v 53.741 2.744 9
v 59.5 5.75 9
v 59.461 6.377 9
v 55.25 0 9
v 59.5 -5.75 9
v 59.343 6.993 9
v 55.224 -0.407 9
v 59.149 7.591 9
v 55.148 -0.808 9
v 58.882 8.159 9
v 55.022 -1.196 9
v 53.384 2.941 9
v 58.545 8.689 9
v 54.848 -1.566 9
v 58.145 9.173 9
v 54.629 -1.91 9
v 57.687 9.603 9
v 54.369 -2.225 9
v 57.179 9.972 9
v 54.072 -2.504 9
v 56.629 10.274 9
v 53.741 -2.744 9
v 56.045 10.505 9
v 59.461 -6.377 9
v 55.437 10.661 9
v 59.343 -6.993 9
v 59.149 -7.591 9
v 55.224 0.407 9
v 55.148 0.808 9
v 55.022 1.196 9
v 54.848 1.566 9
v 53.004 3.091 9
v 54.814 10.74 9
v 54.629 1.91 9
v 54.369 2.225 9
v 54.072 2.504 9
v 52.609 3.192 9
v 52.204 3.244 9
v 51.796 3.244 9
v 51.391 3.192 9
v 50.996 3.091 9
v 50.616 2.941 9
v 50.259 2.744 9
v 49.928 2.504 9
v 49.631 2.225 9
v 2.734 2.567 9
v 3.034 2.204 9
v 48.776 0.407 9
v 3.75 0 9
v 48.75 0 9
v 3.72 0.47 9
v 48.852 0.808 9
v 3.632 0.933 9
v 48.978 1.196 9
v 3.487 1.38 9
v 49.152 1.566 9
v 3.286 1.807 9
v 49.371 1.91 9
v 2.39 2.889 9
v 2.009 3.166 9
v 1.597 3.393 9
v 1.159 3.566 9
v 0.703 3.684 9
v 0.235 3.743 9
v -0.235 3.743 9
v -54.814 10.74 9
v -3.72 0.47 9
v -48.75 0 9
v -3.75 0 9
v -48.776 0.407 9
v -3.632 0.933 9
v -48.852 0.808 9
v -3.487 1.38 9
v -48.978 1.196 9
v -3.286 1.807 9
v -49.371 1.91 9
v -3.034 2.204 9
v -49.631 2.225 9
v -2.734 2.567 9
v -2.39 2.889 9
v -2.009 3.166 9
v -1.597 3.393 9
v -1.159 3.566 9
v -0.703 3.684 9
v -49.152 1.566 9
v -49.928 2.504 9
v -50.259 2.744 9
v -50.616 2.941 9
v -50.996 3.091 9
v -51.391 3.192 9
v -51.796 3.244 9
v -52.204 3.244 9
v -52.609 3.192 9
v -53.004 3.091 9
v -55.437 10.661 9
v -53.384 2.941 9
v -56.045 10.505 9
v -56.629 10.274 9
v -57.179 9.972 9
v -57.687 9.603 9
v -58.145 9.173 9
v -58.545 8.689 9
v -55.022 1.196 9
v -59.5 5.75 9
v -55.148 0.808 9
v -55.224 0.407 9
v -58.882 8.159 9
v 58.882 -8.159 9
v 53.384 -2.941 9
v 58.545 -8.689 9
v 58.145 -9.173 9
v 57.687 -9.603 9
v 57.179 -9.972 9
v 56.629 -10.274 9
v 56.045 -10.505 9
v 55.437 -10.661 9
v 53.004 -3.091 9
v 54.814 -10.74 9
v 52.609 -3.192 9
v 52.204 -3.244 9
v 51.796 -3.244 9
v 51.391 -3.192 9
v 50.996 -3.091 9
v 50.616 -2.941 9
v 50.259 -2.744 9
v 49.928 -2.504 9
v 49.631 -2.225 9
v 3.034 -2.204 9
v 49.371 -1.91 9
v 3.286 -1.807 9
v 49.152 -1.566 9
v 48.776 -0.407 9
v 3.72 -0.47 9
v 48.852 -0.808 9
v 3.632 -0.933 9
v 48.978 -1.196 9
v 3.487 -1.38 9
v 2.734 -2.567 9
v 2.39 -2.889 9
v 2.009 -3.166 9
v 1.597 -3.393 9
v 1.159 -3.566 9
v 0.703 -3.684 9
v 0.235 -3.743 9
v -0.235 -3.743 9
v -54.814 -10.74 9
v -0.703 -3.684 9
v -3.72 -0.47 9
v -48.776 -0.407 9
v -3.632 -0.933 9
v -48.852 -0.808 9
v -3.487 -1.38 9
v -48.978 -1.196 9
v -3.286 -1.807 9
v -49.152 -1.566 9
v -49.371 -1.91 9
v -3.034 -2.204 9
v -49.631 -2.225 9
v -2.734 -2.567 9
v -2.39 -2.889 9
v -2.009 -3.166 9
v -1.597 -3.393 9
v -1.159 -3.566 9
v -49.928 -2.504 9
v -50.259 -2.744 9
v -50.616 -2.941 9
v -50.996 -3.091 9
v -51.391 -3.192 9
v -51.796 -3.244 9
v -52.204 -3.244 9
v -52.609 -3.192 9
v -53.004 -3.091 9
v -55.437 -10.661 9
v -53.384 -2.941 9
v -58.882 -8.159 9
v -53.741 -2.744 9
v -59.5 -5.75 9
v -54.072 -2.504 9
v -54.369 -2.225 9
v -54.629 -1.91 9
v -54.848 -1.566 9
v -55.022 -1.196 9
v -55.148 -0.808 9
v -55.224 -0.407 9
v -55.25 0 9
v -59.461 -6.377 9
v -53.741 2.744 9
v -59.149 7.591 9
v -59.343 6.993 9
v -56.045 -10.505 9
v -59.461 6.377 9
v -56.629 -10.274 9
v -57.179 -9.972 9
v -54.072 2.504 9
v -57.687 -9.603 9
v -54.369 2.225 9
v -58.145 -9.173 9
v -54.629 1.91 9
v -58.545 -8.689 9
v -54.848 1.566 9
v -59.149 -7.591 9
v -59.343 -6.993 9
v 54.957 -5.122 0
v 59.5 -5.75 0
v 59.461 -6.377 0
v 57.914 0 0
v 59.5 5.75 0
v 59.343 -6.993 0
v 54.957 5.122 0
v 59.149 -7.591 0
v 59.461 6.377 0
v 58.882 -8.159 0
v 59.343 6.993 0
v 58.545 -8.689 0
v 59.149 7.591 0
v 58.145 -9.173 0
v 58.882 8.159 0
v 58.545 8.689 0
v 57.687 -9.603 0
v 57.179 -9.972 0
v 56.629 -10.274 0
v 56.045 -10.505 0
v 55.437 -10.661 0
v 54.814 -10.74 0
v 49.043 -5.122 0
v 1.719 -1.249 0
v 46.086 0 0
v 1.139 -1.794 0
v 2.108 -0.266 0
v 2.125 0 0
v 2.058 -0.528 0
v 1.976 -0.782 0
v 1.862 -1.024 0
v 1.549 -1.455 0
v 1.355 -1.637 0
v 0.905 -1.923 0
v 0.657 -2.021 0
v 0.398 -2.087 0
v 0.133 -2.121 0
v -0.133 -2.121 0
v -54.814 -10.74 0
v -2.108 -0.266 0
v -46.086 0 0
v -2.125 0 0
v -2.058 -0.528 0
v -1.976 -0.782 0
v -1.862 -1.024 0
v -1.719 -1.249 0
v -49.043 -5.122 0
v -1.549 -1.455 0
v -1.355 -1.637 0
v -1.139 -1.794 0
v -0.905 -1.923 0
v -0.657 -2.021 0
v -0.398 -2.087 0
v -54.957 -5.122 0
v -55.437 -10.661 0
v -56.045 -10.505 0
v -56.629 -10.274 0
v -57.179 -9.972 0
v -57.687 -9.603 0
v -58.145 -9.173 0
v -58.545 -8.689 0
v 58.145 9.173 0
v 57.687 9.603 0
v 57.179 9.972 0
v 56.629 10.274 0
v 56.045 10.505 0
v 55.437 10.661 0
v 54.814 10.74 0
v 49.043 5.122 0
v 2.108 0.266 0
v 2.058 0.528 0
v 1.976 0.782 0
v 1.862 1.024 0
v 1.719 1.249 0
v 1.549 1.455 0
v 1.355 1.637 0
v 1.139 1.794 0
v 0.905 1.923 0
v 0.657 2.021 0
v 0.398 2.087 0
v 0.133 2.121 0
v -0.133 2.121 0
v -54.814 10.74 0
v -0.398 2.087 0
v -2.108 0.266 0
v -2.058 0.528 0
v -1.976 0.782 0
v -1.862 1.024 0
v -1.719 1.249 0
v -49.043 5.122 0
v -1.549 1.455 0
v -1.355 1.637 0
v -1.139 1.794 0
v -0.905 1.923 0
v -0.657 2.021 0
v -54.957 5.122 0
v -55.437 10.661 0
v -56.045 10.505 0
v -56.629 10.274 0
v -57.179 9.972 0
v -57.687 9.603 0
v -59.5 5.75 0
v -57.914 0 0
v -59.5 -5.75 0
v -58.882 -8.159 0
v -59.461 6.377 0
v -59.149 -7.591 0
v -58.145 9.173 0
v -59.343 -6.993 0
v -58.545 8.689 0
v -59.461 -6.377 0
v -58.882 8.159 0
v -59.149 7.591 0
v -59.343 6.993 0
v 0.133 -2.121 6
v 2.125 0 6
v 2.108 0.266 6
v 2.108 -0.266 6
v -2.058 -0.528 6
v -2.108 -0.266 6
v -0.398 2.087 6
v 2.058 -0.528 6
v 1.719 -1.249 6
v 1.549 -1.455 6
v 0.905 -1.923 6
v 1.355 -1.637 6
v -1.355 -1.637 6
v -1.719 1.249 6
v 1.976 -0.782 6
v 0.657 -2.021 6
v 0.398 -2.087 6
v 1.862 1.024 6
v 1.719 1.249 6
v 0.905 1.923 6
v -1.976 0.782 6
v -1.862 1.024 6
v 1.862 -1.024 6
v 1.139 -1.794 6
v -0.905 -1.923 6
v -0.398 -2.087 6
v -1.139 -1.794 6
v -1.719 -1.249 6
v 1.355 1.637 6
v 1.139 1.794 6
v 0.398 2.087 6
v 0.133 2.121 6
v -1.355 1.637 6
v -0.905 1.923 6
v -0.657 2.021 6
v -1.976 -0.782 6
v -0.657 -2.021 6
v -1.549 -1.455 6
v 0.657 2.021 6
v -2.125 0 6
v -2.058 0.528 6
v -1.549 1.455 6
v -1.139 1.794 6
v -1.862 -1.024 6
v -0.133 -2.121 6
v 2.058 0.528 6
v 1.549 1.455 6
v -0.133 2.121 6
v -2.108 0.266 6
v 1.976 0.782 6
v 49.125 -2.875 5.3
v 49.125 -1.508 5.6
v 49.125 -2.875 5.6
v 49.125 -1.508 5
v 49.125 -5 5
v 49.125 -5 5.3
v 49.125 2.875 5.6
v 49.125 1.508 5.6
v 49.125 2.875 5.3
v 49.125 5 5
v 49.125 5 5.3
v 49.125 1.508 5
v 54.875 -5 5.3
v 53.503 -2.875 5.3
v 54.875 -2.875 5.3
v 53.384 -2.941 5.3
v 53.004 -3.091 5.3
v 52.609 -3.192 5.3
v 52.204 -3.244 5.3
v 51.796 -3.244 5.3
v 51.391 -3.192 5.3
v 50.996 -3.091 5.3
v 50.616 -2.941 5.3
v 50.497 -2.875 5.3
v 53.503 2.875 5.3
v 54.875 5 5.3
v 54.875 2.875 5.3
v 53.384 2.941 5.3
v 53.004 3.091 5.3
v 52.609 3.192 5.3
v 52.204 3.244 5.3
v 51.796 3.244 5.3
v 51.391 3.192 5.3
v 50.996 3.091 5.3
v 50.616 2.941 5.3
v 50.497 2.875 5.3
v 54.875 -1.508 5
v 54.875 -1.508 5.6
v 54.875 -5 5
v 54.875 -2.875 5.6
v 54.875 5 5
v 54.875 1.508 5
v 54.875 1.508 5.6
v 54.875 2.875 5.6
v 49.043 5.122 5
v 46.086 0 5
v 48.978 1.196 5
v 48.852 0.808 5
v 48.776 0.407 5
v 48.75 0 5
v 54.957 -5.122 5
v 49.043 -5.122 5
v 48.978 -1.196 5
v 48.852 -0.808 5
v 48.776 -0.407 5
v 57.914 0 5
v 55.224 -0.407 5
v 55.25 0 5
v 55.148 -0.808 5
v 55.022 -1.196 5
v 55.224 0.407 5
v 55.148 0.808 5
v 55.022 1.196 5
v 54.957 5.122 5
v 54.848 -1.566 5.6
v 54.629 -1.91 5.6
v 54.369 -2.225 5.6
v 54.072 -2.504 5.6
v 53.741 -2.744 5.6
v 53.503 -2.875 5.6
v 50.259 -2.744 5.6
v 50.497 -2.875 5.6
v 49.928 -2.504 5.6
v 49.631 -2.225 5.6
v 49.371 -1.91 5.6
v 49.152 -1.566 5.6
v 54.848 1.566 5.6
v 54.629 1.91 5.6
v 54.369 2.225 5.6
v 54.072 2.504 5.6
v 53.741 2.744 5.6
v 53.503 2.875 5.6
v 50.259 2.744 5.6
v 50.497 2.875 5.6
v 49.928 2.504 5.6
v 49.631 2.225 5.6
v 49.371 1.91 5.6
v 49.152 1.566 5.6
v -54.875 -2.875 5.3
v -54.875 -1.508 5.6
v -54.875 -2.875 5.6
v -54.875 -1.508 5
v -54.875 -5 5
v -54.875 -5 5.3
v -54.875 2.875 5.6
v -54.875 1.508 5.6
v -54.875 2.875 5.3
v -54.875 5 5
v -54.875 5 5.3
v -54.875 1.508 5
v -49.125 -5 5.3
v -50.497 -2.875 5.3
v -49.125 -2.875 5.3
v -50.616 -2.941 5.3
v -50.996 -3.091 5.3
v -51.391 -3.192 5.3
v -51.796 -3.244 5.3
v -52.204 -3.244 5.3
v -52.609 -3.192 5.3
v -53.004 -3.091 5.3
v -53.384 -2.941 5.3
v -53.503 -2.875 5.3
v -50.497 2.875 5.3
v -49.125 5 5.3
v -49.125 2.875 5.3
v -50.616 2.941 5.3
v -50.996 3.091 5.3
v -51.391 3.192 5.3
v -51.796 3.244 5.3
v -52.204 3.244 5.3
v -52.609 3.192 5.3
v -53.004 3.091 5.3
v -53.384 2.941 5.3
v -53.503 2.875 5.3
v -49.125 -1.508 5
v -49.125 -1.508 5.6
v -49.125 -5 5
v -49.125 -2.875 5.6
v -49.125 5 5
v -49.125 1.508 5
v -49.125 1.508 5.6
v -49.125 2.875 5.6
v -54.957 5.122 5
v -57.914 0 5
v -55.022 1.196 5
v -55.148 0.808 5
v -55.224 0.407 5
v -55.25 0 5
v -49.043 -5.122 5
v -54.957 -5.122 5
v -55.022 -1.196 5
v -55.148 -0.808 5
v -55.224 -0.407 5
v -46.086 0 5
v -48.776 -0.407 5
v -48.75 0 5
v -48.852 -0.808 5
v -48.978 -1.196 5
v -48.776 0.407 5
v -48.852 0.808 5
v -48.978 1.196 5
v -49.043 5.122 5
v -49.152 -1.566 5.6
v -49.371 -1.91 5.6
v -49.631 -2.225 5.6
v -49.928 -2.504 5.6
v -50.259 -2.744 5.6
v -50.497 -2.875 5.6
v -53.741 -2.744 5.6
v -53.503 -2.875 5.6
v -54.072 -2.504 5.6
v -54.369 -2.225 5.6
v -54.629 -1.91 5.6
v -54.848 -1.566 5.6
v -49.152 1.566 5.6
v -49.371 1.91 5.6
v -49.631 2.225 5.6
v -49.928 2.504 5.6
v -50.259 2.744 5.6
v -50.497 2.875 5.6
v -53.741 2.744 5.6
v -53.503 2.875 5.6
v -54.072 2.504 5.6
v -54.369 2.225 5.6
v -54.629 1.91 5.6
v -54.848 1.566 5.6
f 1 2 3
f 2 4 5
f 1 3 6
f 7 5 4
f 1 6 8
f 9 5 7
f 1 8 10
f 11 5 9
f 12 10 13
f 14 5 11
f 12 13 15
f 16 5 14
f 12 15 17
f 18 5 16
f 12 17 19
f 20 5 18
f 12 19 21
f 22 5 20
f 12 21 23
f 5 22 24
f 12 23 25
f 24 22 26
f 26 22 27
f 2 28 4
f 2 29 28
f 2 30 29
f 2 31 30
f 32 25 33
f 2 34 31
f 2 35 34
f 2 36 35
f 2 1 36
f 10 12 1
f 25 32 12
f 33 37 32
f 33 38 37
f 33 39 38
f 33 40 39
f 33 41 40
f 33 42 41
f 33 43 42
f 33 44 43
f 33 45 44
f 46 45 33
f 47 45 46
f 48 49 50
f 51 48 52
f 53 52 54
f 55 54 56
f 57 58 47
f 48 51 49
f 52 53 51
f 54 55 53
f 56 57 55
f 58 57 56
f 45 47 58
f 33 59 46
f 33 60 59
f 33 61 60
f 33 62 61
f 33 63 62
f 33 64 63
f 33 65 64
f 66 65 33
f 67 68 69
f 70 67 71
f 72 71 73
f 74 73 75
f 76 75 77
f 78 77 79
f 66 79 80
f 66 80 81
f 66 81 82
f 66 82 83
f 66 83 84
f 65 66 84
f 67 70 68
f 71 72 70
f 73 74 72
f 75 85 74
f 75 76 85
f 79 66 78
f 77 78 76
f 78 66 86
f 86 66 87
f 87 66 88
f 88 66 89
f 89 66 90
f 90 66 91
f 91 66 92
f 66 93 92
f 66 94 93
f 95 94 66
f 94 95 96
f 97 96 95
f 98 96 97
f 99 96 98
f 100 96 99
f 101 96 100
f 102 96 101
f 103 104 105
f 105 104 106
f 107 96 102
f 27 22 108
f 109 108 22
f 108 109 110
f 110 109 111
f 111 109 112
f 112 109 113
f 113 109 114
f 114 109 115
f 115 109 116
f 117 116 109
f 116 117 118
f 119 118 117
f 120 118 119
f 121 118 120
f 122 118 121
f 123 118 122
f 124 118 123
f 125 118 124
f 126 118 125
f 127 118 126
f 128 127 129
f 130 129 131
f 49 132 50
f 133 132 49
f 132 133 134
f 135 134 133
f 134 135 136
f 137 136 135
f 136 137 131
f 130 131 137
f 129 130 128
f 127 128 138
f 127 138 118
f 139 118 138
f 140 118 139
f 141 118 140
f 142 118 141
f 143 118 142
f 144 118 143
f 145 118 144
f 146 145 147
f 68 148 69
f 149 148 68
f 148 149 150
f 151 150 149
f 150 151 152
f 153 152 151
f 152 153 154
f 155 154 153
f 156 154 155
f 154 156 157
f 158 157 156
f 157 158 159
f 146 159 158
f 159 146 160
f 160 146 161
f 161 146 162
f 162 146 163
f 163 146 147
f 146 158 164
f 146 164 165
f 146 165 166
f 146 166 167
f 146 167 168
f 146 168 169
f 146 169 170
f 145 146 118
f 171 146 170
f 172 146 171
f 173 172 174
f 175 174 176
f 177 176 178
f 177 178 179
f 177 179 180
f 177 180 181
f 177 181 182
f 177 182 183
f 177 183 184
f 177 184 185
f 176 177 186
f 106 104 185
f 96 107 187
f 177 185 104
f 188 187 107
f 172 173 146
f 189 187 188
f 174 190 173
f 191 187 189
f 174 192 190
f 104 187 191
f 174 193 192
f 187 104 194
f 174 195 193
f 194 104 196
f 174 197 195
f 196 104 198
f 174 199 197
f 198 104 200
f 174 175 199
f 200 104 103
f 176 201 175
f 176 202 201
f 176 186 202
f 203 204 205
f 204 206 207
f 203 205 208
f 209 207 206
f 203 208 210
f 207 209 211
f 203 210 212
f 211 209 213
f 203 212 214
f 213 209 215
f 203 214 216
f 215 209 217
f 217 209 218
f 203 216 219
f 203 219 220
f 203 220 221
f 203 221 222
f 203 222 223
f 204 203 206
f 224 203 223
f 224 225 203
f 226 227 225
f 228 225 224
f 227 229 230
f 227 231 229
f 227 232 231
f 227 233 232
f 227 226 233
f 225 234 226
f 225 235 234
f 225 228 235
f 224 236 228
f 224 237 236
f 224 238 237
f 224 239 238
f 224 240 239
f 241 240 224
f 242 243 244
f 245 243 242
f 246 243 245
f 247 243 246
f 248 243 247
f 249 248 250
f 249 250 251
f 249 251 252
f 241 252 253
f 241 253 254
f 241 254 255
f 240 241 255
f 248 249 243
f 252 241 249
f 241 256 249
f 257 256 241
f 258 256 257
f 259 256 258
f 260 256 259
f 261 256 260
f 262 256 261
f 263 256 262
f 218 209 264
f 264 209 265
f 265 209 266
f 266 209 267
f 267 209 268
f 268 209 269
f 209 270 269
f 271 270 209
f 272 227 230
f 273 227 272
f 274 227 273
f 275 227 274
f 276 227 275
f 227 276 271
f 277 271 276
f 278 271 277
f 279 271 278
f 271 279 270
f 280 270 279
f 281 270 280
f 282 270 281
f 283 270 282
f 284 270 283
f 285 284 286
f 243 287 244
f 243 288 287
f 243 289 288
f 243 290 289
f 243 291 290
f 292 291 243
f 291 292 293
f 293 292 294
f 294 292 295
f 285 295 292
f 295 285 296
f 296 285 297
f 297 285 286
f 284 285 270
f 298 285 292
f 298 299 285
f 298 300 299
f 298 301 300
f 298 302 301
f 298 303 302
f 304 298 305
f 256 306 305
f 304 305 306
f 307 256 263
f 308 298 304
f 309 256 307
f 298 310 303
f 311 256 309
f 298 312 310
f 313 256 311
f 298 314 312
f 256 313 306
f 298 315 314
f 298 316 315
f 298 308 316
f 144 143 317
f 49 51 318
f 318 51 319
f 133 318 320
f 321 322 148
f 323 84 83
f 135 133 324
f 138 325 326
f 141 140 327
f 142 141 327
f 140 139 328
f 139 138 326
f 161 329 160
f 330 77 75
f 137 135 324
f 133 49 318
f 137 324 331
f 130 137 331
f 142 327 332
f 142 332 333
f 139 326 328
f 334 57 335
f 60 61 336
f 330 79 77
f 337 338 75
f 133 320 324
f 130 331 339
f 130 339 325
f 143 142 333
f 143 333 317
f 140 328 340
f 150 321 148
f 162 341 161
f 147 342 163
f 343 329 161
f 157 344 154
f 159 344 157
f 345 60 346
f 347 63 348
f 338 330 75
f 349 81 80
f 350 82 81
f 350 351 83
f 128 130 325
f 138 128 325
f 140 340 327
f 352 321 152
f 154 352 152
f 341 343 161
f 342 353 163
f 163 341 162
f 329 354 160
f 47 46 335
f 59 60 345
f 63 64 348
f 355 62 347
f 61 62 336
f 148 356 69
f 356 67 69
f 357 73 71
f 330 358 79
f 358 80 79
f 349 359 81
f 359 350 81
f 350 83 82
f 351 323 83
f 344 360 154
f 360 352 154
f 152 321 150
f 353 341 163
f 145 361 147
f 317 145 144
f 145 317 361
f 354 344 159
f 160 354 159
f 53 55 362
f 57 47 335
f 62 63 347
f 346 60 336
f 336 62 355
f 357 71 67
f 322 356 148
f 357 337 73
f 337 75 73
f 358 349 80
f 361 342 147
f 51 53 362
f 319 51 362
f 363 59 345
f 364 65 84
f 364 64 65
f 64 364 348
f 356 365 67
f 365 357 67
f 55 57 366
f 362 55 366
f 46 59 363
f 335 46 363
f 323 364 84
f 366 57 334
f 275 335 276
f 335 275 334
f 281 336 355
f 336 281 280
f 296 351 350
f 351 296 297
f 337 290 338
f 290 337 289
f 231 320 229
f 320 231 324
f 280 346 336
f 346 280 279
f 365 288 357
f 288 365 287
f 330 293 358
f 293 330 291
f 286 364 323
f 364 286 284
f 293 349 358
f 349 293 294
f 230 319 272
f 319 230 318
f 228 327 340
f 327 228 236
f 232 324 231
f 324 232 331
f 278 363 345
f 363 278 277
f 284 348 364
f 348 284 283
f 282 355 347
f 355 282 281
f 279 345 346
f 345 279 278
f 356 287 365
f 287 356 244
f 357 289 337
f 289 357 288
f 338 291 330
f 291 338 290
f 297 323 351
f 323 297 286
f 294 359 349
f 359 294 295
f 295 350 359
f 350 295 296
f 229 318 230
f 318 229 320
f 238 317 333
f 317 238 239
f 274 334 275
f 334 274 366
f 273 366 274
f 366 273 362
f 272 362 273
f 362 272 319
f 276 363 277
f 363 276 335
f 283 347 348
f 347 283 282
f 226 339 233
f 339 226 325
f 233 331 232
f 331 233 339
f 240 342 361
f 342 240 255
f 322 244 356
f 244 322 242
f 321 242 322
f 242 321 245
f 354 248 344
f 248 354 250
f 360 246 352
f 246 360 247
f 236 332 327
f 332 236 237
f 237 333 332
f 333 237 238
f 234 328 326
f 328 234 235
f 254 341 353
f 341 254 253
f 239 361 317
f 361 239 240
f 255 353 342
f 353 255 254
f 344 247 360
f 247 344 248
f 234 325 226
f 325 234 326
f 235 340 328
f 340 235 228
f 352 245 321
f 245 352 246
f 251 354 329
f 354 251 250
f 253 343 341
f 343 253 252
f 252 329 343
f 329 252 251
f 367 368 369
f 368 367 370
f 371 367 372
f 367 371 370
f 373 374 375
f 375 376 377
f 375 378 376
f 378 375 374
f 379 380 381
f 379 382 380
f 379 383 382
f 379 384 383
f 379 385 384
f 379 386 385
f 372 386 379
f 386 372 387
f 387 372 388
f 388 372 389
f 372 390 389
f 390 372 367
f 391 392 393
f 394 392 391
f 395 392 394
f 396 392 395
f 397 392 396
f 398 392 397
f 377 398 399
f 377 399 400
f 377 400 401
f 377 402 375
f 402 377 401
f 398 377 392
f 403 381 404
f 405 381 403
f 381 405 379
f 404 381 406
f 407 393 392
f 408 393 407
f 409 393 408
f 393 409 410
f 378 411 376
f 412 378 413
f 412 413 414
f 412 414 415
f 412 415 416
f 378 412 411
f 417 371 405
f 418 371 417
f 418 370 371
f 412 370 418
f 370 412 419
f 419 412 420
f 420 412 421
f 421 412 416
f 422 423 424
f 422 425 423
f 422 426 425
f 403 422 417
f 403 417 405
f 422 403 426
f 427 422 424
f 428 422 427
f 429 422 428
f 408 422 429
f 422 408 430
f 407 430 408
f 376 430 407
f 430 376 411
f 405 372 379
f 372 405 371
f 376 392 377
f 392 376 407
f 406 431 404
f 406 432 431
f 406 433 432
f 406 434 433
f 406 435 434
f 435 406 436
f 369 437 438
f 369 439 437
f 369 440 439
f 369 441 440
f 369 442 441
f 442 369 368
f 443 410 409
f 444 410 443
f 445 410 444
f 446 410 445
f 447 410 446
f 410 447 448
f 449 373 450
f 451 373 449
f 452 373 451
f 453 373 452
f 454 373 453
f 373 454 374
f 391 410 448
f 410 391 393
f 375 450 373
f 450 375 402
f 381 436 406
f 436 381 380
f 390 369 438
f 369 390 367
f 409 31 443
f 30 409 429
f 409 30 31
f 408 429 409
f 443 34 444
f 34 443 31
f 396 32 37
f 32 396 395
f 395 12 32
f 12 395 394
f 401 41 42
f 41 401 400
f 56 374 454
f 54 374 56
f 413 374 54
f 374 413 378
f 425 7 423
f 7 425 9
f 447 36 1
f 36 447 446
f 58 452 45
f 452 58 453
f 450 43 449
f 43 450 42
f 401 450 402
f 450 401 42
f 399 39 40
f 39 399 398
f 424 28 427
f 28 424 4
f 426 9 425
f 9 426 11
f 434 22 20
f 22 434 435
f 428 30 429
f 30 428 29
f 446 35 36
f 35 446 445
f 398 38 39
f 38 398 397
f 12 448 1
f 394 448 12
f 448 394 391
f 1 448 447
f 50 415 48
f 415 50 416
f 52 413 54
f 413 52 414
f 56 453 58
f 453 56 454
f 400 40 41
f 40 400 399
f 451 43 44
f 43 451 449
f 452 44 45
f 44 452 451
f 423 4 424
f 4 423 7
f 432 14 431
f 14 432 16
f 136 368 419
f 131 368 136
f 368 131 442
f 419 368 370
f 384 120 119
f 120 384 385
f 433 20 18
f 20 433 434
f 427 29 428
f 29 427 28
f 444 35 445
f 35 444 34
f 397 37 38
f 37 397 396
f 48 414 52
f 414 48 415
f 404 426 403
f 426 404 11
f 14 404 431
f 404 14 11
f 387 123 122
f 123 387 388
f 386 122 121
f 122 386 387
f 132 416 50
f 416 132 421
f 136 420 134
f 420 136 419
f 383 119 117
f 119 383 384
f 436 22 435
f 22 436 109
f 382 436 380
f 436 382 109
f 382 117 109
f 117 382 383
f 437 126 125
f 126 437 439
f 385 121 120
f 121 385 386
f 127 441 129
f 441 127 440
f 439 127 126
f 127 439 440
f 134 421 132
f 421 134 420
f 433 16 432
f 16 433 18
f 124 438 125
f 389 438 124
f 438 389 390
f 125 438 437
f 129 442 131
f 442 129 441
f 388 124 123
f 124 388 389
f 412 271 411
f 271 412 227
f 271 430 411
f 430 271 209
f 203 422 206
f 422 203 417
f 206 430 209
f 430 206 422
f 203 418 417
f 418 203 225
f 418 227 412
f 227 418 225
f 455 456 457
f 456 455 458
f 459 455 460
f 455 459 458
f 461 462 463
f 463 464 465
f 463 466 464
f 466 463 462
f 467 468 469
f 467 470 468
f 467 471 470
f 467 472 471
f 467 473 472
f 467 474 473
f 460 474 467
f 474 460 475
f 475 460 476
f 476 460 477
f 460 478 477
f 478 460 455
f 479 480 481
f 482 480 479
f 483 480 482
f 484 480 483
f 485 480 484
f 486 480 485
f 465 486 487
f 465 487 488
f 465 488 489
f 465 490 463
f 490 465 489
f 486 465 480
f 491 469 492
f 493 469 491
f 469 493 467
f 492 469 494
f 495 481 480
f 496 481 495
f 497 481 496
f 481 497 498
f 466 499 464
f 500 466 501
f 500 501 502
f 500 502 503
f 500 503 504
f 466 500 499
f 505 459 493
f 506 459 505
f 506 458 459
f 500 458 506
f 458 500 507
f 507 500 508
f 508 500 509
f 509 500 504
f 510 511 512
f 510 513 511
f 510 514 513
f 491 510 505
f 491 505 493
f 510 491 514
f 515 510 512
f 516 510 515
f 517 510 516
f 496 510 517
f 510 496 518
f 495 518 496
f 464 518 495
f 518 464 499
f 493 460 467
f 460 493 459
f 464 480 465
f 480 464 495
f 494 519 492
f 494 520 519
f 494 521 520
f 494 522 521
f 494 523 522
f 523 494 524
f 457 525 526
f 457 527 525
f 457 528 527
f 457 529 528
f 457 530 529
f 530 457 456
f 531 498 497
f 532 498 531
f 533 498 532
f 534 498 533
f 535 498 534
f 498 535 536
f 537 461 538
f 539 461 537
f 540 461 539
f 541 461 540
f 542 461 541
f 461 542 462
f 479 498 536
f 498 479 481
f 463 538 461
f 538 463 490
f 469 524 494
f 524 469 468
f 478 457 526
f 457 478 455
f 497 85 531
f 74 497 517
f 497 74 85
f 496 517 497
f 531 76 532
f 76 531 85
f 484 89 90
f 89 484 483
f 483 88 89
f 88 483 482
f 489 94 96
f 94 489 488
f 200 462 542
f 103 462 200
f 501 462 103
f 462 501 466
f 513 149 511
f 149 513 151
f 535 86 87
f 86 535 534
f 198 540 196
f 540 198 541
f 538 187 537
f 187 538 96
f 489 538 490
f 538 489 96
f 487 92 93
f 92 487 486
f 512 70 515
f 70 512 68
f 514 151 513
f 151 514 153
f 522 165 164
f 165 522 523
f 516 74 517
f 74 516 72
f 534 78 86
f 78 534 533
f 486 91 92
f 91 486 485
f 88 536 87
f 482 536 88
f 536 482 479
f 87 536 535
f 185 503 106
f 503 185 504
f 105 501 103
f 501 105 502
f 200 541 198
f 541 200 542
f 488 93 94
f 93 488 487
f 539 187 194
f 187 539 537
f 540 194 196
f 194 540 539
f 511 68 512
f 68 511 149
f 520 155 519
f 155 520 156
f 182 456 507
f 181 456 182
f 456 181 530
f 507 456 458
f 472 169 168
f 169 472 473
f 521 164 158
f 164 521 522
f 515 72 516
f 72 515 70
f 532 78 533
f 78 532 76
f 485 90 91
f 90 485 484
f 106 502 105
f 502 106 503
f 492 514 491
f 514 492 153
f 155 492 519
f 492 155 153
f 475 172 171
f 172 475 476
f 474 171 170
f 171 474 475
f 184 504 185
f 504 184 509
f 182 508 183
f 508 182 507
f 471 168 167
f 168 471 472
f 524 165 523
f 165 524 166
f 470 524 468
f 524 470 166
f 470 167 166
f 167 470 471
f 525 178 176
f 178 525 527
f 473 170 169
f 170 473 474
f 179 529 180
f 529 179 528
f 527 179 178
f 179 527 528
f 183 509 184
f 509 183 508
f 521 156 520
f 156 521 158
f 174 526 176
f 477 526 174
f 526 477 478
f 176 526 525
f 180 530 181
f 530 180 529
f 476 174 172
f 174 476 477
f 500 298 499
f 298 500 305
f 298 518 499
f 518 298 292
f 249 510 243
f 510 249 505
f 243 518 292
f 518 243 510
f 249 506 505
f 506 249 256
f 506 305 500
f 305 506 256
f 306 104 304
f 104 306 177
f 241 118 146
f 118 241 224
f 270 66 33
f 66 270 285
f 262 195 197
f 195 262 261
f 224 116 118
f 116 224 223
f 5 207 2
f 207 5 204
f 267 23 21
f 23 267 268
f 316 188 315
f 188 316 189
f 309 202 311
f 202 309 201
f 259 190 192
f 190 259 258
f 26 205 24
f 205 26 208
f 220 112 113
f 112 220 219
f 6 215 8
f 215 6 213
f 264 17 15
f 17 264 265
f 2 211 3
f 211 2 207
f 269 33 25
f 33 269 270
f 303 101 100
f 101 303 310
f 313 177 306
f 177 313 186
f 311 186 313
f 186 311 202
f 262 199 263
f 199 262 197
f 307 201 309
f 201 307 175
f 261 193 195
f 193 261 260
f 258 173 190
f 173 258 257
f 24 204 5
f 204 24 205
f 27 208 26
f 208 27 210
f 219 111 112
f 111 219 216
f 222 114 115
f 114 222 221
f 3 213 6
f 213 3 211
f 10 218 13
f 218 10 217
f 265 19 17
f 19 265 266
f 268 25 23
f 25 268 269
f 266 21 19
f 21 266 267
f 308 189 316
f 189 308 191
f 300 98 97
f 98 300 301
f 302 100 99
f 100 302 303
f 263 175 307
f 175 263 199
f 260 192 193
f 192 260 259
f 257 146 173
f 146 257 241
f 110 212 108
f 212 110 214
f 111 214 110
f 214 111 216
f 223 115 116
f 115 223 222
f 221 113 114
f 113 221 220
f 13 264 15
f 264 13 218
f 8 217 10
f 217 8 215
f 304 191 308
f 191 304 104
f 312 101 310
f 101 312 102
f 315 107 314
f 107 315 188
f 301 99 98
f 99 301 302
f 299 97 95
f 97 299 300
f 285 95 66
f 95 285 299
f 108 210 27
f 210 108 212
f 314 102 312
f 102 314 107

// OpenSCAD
$fn = 50;


difference() {
	union() {
		hull() {
			translate(v = [-54.5000000000, 5.7500000000, 0]) {
				cylinder(h = 9, r = 5);
			}
			translate(v = [54.5000000000, 5.7500000000, 0]) {
				cylinder(h = 9, r = 5);
			}
			translate(v = [-54.5000000000, -5.7500000000, 0]) {
				cylinder(h = 9, r = 5);
			}
			translate(v = [54.5000000000, -5.7500000000, 0]) {
				cylinder(h = 9, r = 5);
			}
		}
	}
	union() {
		translate(v = [0, 0, 9]) {
			rotate(a = [0, 0, 0]) {
				difference() {
					union() {
						#translate(v = [0, 0, -9.0000000000]) {
							cylinder(h = 9, r = 2.0000000000);
						}
						#translate(v = [0, 0, -3]) {
							cylinder(h = 3, r1 = 2.1250000000, r2 = 3.7500000000);
						}
						#translate(v = [0, 0, -9.0000000000]) {
							cylinder(h = 9, r = 2.1250000000);
						}
						#translate(v = [0, 0, -9.0000000000]) {
							cylinder(h = 9, r = 2.0000000000);
						}
					}
					union();
				}
			}
		}
		translate(v = [52.0000000000, 0, 0]) {
			rotate(a = [0, 0, 0]) {
				difference() {
					union() {
						#translate(v = [-2.8750000000, -5.0000000000, -0.3000000000]) {
							cube(size = [5.7500000000, 10, 0.3000000000]);
						}
						#translate(v = [-2.8750000000, -2.8750000000, -0.6000000000]) {
							cube(size = [5.7500000000, 5.7500000000, 0.3000000000]);
						}
						#translate(v = [-2.8750000000, -5.0000000000, 5]) {
							cube(size = [5.7500000000, 10, 0.3000000000]);
						}
						#translate(v = [-2.8750000000, -2.8750000000, 5.3000000000]) {
							cube(size = [5.7500000000, 5.7500000000, 0.3000000000]);
						}
						#translate(v = [0, 0, -100.0000000000]) {
							cylinder(h = 200, r = 3.2500000000);
						}
						#linear_extrude(height = 5) {
							polygon(points = [[5.9142500000, 0.0000000000], [2.9571250000, 5.1218907443], [-2.9571250000, 5.1218907443], [-5.9142500000, 0.0000000000], [-2.9571250000, -5.1218907443], [2.9571250000, -5.1218907443]]);
						}
						#translate(v = [-2.8750000000, -5.0000000000, -0.3000000000]) {
							cube(size = [5.7500000000, 10, 0.3000000000]);
						}
						#translate(v = [-2.8750000000, -2.8750000000, -0.6000000000]) {
							cube(size = [5.7500000000, 5.7500000000, 0.3000000000]);
						}
						#translate(v = [-2.8750000000, -5.0000000000, 5]) {
							cube(size = [5.7500000000, 10, 0.3000000000]);
						}
						#translate(v = [-2.8750000000, -2.8750000000, 5.3000000000]) {
							cube(size = [5.7500000000, 5.7500000000, 0.3000000000]);
						}
						#translate(v = [0, 0, -100.0000000000]) {
							cylinder(h = 200, r = 3.2500000000);
						}
						#translate(v = [-2.8750000000, -5.0000000000, -0.3000000000]) {
							cube(size = [5.7500000000, 10, 0.3000000000]);
						}
						#translate(v = [-2.8750000000, -2.8750000000, -0.6000000000]) {
							cube(size = [5.7500000000, 5.7500000000, 0.3000000000]);
						}
						#translate(v = [-2.8750000000, -5.0000000000, 5]) {
							cube(size = [5.7500000000, 10, 0.3000000000]);
						}
						#translate(v = [-2.8750000000, -2.8750000000, 5.3000000000]) {
							cube(size = [5.7500000000, 5.7500000000, 0.3000000000]);
						}
						#translate(v = [0, 0, -100.0000000000]) {
							cylinder(h = 200, r = 3.2500000000);
						}
					}
					union();
				}
			}
		}
		translate(v = [-52.0000000000, 0, 0]) {
			rotate(a = [0, 0, 0]) {
				difference() {
					union() {
						#translate(v = [-2.8750000000, -5.0000000000, -0.3000000000]) {
							cube(size = [5.7500000000, 10, 0.3000000000]);
						}
						#translate(v = [-2.8750000000, -2.8750000000, -0.6000000000]) {
							cube(size = [5.7500000000, 5.7500000000, 0.3000000000]);
						}
						#translate(v = [-2.8750000000, -5.0000000000, 5]) {
							cube(size = [5.7500000000, 10, 0.3000000000]);
						}
						#translate(v = [-2.8750000000, -2.8750000000, 5.3000000000]) {
							cube(size = [5.7500000000, 5.7500000000, 0.3000000000]);
						}
						#translate(v = [0, 0, -100.0000000000]) {
							cylinder(h = 200, r = 3.2500000000);
						}
						#linear_extrude(height = 5) {
							polygon(points = [[5.9142500000, 0.0000000000], [2.9571250000, 5.1218907443], [-2.9571250000, 5.1218907443], [-5.9142500000, 0.0000000000], [-2.9571250000, -5.1218907443], [2.9571250000, -5.1218907443]]);
						}
						#translate(v = [-2.8750000000, -5.0000000000, -0.3000000000]) {
							cube(size = [5.7500000000, 10, 0.3000000000]);
						}
						#translate(v = [-2.8750000000, -2.8750000000, -0.6000000000]) {
							cube(size = [5.7500000000, 5.7500000000, 0.3000000000]);
						}
						#translate(v = [-2.8750000000, -5.0000000000, 5]) {
							cube(size = [5.7500000000, 10, 0.3000000000]);
						}
						#translate(v = [-2.8750000000, -2.8750000000, 5.3000000000]) {
							cube(size = [5.7500000000, 5.7500000000, 0.3000000000]);
						}
						#translate(v = [0, 0, -100.0000000000]) {
							cylinder(h = 200, r = 3.2500000000);
						}
						#translate(v = [-2.8750000000, -5.0000000000, -0.3000000000]) {
							cube(size = [5.7500000000, 10, 0.3000000000]);
						}
						#translate(v = [-2.8750000000, -2.8750000000, -0.6000000000]) {
							cube(size = [5.7500000000, 5.7500000000, 0.3000000000]);
						}
						#translate(v = [-2.8750000000, -5.0000000000, 5]) {
							cube(size = [5.7500000000, 10, 0.3000000000]);
						}
						#translate(v = [-2.8750000000, -2.8750000000, 5.3000000000]) {
							cube(size = [5.7500000000, 5.7500000000, 0.3000000000]);
						}
						#translate(v = [0, 0, -100.0000000000]) {
							cylinder(h = 200, r = 3.2500000000);
						}
					}
					union();
				}
			}
		}
	}
}
